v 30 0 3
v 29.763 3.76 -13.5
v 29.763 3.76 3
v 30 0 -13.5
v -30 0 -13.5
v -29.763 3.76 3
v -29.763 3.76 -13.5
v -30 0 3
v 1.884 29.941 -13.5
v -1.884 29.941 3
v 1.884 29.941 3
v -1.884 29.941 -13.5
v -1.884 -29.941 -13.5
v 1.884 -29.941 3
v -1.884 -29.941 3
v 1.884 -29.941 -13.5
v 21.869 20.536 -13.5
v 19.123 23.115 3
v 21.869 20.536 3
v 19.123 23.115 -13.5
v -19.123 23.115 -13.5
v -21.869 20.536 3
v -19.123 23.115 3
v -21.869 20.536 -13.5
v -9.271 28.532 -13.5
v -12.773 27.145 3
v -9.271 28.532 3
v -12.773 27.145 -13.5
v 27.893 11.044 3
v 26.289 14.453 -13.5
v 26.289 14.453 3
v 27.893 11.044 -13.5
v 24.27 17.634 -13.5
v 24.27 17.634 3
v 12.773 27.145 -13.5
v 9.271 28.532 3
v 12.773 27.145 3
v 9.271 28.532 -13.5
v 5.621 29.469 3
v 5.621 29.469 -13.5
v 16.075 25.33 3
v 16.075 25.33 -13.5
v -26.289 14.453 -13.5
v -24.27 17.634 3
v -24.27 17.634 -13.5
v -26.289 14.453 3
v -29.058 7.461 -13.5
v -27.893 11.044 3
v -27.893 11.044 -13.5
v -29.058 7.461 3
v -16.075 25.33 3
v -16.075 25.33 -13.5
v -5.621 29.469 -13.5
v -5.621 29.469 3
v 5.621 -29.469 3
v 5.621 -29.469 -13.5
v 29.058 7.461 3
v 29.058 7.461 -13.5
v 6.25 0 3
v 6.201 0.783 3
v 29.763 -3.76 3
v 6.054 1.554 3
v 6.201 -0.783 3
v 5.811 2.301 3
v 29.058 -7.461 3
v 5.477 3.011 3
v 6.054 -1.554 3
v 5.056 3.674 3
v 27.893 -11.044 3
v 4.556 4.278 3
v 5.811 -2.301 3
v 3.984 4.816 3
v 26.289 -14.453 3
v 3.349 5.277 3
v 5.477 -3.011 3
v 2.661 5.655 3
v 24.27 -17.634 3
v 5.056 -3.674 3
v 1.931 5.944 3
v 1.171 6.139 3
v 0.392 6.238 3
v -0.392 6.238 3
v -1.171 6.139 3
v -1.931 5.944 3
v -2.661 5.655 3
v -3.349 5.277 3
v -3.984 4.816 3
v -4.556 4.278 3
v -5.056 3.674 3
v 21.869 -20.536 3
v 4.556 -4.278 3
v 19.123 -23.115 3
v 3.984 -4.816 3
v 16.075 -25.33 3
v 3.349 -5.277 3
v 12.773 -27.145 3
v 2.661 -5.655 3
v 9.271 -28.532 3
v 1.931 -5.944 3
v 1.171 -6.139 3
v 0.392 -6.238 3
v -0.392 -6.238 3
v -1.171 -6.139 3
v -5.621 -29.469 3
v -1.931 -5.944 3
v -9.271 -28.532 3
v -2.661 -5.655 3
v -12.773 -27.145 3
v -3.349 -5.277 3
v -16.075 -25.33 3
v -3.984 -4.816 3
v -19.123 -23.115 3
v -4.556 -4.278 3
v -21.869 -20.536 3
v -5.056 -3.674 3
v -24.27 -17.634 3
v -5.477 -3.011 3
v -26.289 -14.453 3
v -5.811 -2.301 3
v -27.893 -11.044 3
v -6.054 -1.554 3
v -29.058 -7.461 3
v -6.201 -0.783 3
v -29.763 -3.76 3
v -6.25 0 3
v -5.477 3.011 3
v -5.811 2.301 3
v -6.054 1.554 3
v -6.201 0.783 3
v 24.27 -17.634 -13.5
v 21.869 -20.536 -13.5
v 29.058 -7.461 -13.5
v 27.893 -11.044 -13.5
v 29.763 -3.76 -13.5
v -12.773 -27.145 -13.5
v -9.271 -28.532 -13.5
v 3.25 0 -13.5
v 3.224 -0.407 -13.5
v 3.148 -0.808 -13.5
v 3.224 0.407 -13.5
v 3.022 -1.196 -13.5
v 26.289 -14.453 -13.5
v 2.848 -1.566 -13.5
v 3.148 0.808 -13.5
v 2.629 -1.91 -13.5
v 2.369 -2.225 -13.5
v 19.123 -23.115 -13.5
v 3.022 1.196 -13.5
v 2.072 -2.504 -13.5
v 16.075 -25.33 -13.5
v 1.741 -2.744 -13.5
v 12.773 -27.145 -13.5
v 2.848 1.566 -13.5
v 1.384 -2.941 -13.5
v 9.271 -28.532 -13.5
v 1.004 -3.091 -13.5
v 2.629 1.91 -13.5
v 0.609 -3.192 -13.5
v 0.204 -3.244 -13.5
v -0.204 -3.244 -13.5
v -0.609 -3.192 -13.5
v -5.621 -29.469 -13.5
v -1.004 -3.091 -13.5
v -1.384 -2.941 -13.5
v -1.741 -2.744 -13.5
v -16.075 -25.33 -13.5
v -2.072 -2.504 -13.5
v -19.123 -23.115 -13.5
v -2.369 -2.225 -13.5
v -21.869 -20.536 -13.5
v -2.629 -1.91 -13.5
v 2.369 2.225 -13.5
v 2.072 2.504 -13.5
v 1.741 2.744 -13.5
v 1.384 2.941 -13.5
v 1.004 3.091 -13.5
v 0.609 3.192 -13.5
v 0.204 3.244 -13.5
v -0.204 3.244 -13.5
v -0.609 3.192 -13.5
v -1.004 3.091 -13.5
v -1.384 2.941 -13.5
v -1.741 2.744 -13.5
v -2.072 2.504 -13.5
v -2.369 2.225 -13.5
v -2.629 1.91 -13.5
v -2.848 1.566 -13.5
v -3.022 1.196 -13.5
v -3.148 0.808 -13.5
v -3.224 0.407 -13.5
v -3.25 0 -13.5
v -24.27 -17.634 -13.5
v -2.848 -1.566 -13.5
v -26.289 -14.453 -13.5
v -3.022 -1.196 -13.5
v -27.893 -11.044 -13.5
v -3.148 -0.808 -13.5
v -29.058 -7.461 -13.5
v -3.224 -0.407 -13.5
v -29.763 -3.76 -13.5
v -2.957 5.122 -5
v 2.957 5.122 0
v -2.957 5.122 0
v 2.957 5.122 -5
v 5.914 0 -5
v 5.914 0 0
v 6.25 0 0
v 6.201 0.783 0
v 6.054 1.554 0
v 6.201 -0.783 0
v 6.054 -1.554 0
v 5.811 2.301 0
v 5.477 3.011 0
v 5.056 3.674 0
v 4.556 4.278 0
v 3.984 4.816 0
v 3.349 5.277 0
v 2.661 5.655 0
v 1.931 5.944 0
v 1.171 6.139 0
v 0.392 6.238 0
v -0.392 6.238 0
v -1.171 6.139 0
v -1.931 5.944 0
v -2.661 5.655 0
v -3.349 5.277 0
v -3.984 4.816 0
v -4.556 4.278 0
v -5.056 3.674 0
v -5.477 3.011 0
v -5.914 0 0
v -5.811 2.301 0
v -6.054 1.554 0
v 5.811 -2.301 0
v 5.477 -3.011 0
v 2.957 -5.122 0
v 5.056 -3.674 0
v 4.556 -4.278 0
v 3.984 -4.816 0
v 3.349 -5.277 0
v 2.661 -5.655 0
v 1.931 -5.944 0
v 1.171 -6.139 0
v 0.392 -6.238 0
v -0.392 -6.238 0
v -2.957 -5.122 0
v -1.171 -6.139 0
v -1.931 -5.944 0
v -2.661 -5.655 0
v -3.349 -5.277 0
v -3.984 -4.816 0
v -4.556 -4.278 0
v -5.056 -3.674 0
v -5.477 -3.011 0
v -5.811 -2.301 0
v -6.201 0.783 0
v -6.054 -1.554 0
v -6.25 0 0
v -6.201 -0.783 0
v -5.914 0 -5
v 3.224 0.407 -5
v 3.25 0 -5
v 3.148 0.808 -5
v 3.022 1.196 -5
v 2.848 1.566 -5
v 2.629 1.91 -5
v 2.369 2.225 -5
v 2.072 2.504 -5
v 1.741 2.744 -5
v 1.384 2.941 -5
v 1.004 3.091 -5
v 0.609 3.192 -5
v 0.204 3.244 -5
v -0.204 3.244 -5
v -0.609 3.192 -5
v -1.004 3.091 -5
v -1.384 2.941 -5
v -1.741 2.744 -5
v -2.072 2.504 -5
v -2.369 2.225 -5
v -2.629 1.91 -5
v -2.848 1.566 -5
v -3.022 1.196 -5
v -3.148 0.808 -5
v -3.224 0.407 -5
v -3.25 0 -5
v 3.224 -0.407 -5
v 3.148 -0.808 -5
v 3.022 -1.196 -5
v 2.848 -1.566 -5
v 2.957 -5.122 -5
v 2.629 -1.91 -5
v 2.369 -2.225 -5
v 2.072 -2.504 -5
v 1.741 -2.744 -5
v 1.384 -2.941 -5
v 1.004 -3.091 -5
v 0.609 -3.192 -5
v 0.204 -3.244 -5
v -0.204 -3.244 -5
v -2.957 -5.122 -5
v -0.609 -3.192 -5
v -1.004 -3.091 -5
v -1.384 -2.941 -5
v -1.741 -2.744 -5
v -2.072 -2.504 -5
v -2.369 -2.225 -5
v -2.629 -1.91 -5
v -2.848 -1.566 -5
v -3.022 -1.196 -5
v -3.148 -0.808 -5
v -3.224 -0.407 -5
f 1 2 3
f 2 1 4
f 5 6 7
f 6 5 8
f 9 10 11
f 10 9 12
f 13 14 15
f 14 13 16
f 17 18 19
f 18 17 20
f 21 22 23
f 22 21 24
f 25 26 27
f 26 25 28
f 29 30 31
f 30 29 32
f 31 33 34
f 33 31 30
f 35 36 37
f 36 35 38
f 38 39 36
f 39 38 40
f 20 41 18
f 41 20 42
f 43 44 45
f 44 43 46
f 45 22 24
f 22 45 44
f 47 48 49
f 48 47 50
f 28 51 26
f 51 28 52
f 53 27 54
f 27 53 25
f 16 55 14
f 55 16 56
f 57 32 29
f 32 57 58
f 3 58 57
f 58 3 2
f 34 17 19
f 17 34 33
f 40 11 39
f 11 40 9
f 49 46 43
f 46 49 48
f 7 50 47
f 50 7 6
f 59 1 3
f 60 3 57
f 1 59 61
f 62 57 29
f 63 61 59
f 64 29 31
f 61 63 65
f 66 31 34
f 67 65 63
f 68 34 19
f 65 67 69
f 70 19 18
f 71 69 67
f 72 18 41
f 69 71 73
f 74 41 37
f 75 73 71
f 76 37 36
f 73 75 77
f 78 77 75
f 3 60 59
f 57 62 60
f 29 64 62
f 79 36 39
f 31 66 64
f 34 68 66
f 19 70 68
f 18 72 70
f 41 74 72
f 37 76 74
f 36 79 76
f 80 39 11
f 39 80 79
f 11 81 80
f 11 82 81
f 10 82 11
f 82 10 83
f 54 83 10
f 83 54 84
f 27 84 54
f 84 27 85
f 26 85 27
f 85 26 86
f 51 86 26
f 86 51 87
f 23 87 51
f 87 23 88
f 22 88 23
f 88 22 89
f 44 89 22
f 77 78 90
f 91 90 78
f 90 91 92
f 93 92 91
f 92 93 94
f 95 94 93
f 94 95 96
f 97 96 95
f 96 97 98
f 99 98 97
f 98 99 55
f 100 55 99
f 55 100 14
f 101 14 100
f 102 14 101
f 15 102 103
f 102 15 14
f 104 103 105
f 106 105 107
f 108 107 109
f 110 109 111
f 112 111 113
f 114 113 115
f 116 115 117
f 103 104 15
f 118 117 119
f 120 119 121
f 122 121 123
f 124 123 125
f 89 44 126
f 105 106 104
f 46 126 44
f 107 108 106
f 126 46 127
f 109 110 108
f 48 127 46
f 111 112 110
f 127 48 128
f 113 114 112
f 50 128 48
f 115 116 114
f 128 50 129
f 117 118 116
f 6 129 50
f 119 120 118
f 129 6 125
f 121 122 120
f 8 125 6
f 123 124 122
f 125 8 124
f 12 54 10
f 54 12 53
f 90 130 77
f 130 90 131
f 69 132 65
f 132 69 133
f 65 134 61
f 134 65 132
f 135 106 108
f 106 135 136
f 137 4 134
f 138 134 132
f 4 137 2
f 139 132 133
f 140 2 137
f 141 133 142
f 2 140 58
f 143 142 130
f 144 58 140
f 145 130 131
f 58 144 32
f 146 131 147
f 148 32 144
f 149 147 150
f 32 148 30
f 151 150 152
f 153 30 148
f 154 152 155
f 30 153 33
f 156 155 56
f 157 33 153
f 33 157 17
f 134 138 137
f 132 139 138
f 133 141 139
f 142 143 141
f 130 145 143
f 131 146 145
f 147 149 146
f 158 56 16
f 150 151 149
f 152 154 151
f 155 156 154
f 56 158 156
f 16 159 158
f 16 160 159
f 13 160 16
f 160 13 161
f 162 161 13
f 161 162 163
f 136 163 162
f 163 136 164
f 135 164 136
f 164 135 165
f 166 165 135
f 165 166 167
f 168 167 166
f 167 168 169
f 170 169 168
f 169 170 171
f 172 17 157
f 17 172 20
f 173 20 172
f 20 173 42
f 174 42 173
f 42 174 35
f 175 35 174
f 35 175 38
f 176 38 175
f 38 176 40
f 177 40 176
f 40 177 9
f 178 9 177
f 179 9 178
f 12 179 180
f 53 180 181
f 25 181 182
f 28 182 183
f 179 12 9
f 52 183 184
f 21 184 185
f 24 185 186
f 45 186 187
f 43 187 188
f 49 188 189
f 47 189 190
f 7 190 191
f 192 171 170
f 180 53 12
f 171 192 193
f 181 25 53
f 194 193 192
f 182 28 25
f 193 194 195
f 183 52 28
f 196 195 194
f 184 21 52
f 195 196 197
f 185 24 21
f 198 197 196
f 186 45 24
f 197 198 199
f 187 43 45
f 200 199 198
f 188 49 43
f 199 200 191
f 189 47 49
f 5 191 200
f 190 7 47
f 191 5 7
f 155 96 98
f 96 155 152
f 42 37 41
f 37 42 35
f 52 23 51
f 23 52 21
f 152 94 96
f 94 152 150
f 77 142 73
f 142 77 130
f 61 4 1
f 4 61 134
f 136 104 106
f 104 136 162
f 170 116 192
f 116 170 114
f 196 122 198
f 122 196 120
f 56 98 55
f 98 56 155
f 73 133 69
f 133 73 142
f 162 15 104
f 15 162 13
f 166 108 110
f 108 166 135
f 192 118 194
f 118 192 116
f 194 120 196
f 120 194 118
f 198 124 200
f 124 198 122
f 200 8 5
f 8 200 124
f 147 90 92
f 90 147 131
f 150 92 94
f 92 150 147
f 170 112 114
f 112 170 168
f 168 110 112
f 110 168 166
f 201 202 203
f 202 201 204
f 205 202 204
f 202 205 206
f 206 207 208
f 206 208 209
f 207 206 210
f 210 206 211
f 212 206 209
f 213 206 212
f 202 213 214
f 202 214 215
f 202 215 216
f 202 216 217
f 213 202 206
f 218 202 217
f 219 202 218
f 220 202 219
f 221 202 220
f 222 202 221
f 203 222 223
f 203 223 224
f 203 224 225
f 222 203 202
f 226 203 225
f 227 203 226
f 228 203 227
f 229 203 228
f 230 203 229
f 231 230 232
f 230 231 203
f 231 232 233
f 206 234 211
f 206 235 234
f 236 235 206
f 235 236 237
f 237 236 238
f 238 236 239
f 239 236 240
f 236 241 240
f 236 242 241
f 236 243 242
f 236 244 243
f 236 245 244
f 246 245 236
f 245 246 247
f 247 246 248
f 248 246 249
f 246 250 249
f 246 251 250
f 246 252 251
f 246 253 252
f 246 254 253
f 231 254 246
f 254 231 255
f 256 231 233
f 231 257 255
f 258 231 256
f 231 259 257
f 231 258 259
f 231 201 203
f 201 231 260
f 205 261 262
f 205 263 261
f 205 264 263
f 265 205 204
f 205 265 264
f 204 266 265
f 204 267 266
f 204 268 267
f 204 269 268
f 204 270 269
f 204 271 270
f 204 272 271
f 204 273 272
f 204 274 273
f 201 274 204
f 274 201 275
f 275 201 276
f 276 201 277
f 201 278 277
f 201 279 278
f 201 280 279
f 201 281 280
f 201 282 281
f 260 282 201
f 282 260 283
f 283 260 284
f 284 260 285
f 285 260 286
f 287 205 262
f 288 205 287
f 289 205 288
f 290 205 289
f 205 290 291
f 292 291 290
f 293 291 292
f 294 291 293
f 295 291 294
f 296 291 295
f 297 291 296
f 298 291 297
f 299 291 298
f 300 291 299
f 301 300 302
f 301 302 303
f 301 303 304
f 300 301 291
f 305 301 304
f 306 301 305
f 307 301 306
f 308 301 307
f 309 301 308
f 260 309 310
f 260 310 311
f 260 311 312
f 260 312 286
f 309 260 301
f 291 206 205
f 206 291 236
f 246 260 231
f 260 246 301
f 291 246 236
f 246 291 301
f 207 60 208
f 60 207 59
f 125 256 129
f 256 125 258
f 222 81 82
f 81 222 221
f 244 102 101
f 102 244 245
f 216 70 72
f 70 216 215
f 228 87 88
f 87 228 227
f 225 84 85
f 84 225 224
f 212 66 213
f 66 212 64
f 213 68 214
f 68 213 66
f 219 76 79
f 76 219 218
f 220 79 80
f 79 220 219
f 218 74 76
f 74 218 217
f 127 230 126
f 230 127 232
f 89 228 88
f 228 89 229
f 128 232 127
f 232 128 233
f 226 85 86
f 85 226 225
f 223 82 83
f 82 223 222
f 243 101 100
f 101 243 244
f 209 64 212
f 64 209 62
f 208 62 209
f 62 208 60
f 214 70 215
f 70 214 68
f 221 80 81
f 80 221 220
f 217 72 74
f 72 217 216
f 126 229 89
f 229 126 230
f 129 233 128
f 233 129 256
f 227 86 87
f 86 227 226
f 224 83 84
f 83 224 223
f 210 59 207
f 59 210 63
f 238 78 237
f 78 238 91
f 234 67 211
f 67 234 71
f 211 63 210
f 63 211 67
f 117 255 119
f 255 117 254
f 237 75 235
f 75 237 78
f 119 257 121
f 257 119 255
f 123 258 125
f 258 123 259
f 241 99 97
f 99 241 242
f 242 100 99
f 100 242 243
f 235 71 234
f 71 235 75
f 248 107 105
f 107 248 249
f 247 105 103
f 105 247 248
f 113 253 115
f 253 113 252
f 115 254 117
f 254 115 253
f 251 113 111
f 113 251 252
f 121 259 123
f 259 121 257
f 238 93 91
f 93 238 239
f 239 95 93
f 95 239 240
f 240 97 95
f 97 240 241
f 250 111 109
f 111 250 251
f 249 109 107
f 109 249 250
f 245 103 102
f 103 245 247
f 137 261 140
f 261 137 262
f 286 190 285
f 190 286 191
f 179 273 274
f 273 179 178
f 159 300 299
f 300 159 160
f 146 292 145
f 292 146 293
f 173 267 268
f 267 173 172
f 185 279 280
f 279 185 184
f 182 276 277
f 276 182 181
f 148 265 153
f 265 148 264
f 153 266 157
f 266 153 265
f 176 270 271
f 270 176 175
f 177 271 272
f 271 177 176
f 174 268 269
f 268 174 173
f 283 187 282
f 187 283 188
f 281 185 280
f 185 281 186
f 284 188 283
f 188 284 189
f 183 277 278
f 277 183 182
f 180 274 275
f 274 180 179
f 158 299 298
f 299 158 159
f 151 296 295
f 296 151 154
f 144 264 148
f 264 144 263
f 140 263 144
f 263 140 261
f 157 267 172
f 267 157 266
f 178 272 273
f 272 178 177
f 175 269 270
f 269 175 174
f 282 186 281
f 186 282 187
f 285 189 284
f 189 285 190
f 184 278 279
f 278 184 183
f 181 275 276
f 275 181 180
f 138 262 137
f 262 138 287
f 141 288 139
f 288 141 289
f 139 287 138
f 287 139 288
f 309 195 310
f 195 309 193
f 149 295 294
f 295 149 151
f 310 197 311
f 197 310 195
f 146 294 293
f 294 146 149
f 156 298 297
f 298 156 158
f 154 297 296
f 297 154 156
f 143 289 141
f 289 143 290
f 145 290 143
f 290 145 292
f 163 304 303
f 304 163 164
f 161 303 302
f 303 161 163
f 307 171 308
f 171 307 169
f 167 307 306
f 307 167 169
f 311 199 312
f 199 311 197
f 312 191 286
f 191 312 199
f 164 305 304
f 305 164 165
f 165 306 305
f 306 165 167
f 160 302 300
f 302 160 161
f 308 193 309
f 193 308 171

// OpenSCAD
$fn = 50;

difference() {
	union() {
		translate(v = [0, 0, -13.5]) {
			cylinder(h = 16.5, r = 30.0);
		}
		#translate(v = [0, 0, -15.0]) {
			cylinder(h = 15, r = 2.875);
		}
	}
	union() {
		translate(v = [0, 0, 0]) {
			rotate(a = [0, 0, 0]) {
				difference() {
					union() {
						translate(v = [0, 0, -5]) {
							linear_extrude(height = 5) {
								polygon(points = [[5.914249999999999, 0.0], [2.957125, 5.1218907443321156], [-2.9571249999999982, 5.1218907443321156], [-5.914249999999999, 7.242867331857232e-16], [-2.9571250000000022, -5.121890744332115], [2.9571249999999956, -5.121890744332118]]);
							}
						}
					}
					union();
				}
			}
		}
		#cylinder(h = 3, r = 6.25);
		#translate(v = [0, 0, -100.0]) {
			cylinder(h = 200, r = 3.25);
		}
	}
}
